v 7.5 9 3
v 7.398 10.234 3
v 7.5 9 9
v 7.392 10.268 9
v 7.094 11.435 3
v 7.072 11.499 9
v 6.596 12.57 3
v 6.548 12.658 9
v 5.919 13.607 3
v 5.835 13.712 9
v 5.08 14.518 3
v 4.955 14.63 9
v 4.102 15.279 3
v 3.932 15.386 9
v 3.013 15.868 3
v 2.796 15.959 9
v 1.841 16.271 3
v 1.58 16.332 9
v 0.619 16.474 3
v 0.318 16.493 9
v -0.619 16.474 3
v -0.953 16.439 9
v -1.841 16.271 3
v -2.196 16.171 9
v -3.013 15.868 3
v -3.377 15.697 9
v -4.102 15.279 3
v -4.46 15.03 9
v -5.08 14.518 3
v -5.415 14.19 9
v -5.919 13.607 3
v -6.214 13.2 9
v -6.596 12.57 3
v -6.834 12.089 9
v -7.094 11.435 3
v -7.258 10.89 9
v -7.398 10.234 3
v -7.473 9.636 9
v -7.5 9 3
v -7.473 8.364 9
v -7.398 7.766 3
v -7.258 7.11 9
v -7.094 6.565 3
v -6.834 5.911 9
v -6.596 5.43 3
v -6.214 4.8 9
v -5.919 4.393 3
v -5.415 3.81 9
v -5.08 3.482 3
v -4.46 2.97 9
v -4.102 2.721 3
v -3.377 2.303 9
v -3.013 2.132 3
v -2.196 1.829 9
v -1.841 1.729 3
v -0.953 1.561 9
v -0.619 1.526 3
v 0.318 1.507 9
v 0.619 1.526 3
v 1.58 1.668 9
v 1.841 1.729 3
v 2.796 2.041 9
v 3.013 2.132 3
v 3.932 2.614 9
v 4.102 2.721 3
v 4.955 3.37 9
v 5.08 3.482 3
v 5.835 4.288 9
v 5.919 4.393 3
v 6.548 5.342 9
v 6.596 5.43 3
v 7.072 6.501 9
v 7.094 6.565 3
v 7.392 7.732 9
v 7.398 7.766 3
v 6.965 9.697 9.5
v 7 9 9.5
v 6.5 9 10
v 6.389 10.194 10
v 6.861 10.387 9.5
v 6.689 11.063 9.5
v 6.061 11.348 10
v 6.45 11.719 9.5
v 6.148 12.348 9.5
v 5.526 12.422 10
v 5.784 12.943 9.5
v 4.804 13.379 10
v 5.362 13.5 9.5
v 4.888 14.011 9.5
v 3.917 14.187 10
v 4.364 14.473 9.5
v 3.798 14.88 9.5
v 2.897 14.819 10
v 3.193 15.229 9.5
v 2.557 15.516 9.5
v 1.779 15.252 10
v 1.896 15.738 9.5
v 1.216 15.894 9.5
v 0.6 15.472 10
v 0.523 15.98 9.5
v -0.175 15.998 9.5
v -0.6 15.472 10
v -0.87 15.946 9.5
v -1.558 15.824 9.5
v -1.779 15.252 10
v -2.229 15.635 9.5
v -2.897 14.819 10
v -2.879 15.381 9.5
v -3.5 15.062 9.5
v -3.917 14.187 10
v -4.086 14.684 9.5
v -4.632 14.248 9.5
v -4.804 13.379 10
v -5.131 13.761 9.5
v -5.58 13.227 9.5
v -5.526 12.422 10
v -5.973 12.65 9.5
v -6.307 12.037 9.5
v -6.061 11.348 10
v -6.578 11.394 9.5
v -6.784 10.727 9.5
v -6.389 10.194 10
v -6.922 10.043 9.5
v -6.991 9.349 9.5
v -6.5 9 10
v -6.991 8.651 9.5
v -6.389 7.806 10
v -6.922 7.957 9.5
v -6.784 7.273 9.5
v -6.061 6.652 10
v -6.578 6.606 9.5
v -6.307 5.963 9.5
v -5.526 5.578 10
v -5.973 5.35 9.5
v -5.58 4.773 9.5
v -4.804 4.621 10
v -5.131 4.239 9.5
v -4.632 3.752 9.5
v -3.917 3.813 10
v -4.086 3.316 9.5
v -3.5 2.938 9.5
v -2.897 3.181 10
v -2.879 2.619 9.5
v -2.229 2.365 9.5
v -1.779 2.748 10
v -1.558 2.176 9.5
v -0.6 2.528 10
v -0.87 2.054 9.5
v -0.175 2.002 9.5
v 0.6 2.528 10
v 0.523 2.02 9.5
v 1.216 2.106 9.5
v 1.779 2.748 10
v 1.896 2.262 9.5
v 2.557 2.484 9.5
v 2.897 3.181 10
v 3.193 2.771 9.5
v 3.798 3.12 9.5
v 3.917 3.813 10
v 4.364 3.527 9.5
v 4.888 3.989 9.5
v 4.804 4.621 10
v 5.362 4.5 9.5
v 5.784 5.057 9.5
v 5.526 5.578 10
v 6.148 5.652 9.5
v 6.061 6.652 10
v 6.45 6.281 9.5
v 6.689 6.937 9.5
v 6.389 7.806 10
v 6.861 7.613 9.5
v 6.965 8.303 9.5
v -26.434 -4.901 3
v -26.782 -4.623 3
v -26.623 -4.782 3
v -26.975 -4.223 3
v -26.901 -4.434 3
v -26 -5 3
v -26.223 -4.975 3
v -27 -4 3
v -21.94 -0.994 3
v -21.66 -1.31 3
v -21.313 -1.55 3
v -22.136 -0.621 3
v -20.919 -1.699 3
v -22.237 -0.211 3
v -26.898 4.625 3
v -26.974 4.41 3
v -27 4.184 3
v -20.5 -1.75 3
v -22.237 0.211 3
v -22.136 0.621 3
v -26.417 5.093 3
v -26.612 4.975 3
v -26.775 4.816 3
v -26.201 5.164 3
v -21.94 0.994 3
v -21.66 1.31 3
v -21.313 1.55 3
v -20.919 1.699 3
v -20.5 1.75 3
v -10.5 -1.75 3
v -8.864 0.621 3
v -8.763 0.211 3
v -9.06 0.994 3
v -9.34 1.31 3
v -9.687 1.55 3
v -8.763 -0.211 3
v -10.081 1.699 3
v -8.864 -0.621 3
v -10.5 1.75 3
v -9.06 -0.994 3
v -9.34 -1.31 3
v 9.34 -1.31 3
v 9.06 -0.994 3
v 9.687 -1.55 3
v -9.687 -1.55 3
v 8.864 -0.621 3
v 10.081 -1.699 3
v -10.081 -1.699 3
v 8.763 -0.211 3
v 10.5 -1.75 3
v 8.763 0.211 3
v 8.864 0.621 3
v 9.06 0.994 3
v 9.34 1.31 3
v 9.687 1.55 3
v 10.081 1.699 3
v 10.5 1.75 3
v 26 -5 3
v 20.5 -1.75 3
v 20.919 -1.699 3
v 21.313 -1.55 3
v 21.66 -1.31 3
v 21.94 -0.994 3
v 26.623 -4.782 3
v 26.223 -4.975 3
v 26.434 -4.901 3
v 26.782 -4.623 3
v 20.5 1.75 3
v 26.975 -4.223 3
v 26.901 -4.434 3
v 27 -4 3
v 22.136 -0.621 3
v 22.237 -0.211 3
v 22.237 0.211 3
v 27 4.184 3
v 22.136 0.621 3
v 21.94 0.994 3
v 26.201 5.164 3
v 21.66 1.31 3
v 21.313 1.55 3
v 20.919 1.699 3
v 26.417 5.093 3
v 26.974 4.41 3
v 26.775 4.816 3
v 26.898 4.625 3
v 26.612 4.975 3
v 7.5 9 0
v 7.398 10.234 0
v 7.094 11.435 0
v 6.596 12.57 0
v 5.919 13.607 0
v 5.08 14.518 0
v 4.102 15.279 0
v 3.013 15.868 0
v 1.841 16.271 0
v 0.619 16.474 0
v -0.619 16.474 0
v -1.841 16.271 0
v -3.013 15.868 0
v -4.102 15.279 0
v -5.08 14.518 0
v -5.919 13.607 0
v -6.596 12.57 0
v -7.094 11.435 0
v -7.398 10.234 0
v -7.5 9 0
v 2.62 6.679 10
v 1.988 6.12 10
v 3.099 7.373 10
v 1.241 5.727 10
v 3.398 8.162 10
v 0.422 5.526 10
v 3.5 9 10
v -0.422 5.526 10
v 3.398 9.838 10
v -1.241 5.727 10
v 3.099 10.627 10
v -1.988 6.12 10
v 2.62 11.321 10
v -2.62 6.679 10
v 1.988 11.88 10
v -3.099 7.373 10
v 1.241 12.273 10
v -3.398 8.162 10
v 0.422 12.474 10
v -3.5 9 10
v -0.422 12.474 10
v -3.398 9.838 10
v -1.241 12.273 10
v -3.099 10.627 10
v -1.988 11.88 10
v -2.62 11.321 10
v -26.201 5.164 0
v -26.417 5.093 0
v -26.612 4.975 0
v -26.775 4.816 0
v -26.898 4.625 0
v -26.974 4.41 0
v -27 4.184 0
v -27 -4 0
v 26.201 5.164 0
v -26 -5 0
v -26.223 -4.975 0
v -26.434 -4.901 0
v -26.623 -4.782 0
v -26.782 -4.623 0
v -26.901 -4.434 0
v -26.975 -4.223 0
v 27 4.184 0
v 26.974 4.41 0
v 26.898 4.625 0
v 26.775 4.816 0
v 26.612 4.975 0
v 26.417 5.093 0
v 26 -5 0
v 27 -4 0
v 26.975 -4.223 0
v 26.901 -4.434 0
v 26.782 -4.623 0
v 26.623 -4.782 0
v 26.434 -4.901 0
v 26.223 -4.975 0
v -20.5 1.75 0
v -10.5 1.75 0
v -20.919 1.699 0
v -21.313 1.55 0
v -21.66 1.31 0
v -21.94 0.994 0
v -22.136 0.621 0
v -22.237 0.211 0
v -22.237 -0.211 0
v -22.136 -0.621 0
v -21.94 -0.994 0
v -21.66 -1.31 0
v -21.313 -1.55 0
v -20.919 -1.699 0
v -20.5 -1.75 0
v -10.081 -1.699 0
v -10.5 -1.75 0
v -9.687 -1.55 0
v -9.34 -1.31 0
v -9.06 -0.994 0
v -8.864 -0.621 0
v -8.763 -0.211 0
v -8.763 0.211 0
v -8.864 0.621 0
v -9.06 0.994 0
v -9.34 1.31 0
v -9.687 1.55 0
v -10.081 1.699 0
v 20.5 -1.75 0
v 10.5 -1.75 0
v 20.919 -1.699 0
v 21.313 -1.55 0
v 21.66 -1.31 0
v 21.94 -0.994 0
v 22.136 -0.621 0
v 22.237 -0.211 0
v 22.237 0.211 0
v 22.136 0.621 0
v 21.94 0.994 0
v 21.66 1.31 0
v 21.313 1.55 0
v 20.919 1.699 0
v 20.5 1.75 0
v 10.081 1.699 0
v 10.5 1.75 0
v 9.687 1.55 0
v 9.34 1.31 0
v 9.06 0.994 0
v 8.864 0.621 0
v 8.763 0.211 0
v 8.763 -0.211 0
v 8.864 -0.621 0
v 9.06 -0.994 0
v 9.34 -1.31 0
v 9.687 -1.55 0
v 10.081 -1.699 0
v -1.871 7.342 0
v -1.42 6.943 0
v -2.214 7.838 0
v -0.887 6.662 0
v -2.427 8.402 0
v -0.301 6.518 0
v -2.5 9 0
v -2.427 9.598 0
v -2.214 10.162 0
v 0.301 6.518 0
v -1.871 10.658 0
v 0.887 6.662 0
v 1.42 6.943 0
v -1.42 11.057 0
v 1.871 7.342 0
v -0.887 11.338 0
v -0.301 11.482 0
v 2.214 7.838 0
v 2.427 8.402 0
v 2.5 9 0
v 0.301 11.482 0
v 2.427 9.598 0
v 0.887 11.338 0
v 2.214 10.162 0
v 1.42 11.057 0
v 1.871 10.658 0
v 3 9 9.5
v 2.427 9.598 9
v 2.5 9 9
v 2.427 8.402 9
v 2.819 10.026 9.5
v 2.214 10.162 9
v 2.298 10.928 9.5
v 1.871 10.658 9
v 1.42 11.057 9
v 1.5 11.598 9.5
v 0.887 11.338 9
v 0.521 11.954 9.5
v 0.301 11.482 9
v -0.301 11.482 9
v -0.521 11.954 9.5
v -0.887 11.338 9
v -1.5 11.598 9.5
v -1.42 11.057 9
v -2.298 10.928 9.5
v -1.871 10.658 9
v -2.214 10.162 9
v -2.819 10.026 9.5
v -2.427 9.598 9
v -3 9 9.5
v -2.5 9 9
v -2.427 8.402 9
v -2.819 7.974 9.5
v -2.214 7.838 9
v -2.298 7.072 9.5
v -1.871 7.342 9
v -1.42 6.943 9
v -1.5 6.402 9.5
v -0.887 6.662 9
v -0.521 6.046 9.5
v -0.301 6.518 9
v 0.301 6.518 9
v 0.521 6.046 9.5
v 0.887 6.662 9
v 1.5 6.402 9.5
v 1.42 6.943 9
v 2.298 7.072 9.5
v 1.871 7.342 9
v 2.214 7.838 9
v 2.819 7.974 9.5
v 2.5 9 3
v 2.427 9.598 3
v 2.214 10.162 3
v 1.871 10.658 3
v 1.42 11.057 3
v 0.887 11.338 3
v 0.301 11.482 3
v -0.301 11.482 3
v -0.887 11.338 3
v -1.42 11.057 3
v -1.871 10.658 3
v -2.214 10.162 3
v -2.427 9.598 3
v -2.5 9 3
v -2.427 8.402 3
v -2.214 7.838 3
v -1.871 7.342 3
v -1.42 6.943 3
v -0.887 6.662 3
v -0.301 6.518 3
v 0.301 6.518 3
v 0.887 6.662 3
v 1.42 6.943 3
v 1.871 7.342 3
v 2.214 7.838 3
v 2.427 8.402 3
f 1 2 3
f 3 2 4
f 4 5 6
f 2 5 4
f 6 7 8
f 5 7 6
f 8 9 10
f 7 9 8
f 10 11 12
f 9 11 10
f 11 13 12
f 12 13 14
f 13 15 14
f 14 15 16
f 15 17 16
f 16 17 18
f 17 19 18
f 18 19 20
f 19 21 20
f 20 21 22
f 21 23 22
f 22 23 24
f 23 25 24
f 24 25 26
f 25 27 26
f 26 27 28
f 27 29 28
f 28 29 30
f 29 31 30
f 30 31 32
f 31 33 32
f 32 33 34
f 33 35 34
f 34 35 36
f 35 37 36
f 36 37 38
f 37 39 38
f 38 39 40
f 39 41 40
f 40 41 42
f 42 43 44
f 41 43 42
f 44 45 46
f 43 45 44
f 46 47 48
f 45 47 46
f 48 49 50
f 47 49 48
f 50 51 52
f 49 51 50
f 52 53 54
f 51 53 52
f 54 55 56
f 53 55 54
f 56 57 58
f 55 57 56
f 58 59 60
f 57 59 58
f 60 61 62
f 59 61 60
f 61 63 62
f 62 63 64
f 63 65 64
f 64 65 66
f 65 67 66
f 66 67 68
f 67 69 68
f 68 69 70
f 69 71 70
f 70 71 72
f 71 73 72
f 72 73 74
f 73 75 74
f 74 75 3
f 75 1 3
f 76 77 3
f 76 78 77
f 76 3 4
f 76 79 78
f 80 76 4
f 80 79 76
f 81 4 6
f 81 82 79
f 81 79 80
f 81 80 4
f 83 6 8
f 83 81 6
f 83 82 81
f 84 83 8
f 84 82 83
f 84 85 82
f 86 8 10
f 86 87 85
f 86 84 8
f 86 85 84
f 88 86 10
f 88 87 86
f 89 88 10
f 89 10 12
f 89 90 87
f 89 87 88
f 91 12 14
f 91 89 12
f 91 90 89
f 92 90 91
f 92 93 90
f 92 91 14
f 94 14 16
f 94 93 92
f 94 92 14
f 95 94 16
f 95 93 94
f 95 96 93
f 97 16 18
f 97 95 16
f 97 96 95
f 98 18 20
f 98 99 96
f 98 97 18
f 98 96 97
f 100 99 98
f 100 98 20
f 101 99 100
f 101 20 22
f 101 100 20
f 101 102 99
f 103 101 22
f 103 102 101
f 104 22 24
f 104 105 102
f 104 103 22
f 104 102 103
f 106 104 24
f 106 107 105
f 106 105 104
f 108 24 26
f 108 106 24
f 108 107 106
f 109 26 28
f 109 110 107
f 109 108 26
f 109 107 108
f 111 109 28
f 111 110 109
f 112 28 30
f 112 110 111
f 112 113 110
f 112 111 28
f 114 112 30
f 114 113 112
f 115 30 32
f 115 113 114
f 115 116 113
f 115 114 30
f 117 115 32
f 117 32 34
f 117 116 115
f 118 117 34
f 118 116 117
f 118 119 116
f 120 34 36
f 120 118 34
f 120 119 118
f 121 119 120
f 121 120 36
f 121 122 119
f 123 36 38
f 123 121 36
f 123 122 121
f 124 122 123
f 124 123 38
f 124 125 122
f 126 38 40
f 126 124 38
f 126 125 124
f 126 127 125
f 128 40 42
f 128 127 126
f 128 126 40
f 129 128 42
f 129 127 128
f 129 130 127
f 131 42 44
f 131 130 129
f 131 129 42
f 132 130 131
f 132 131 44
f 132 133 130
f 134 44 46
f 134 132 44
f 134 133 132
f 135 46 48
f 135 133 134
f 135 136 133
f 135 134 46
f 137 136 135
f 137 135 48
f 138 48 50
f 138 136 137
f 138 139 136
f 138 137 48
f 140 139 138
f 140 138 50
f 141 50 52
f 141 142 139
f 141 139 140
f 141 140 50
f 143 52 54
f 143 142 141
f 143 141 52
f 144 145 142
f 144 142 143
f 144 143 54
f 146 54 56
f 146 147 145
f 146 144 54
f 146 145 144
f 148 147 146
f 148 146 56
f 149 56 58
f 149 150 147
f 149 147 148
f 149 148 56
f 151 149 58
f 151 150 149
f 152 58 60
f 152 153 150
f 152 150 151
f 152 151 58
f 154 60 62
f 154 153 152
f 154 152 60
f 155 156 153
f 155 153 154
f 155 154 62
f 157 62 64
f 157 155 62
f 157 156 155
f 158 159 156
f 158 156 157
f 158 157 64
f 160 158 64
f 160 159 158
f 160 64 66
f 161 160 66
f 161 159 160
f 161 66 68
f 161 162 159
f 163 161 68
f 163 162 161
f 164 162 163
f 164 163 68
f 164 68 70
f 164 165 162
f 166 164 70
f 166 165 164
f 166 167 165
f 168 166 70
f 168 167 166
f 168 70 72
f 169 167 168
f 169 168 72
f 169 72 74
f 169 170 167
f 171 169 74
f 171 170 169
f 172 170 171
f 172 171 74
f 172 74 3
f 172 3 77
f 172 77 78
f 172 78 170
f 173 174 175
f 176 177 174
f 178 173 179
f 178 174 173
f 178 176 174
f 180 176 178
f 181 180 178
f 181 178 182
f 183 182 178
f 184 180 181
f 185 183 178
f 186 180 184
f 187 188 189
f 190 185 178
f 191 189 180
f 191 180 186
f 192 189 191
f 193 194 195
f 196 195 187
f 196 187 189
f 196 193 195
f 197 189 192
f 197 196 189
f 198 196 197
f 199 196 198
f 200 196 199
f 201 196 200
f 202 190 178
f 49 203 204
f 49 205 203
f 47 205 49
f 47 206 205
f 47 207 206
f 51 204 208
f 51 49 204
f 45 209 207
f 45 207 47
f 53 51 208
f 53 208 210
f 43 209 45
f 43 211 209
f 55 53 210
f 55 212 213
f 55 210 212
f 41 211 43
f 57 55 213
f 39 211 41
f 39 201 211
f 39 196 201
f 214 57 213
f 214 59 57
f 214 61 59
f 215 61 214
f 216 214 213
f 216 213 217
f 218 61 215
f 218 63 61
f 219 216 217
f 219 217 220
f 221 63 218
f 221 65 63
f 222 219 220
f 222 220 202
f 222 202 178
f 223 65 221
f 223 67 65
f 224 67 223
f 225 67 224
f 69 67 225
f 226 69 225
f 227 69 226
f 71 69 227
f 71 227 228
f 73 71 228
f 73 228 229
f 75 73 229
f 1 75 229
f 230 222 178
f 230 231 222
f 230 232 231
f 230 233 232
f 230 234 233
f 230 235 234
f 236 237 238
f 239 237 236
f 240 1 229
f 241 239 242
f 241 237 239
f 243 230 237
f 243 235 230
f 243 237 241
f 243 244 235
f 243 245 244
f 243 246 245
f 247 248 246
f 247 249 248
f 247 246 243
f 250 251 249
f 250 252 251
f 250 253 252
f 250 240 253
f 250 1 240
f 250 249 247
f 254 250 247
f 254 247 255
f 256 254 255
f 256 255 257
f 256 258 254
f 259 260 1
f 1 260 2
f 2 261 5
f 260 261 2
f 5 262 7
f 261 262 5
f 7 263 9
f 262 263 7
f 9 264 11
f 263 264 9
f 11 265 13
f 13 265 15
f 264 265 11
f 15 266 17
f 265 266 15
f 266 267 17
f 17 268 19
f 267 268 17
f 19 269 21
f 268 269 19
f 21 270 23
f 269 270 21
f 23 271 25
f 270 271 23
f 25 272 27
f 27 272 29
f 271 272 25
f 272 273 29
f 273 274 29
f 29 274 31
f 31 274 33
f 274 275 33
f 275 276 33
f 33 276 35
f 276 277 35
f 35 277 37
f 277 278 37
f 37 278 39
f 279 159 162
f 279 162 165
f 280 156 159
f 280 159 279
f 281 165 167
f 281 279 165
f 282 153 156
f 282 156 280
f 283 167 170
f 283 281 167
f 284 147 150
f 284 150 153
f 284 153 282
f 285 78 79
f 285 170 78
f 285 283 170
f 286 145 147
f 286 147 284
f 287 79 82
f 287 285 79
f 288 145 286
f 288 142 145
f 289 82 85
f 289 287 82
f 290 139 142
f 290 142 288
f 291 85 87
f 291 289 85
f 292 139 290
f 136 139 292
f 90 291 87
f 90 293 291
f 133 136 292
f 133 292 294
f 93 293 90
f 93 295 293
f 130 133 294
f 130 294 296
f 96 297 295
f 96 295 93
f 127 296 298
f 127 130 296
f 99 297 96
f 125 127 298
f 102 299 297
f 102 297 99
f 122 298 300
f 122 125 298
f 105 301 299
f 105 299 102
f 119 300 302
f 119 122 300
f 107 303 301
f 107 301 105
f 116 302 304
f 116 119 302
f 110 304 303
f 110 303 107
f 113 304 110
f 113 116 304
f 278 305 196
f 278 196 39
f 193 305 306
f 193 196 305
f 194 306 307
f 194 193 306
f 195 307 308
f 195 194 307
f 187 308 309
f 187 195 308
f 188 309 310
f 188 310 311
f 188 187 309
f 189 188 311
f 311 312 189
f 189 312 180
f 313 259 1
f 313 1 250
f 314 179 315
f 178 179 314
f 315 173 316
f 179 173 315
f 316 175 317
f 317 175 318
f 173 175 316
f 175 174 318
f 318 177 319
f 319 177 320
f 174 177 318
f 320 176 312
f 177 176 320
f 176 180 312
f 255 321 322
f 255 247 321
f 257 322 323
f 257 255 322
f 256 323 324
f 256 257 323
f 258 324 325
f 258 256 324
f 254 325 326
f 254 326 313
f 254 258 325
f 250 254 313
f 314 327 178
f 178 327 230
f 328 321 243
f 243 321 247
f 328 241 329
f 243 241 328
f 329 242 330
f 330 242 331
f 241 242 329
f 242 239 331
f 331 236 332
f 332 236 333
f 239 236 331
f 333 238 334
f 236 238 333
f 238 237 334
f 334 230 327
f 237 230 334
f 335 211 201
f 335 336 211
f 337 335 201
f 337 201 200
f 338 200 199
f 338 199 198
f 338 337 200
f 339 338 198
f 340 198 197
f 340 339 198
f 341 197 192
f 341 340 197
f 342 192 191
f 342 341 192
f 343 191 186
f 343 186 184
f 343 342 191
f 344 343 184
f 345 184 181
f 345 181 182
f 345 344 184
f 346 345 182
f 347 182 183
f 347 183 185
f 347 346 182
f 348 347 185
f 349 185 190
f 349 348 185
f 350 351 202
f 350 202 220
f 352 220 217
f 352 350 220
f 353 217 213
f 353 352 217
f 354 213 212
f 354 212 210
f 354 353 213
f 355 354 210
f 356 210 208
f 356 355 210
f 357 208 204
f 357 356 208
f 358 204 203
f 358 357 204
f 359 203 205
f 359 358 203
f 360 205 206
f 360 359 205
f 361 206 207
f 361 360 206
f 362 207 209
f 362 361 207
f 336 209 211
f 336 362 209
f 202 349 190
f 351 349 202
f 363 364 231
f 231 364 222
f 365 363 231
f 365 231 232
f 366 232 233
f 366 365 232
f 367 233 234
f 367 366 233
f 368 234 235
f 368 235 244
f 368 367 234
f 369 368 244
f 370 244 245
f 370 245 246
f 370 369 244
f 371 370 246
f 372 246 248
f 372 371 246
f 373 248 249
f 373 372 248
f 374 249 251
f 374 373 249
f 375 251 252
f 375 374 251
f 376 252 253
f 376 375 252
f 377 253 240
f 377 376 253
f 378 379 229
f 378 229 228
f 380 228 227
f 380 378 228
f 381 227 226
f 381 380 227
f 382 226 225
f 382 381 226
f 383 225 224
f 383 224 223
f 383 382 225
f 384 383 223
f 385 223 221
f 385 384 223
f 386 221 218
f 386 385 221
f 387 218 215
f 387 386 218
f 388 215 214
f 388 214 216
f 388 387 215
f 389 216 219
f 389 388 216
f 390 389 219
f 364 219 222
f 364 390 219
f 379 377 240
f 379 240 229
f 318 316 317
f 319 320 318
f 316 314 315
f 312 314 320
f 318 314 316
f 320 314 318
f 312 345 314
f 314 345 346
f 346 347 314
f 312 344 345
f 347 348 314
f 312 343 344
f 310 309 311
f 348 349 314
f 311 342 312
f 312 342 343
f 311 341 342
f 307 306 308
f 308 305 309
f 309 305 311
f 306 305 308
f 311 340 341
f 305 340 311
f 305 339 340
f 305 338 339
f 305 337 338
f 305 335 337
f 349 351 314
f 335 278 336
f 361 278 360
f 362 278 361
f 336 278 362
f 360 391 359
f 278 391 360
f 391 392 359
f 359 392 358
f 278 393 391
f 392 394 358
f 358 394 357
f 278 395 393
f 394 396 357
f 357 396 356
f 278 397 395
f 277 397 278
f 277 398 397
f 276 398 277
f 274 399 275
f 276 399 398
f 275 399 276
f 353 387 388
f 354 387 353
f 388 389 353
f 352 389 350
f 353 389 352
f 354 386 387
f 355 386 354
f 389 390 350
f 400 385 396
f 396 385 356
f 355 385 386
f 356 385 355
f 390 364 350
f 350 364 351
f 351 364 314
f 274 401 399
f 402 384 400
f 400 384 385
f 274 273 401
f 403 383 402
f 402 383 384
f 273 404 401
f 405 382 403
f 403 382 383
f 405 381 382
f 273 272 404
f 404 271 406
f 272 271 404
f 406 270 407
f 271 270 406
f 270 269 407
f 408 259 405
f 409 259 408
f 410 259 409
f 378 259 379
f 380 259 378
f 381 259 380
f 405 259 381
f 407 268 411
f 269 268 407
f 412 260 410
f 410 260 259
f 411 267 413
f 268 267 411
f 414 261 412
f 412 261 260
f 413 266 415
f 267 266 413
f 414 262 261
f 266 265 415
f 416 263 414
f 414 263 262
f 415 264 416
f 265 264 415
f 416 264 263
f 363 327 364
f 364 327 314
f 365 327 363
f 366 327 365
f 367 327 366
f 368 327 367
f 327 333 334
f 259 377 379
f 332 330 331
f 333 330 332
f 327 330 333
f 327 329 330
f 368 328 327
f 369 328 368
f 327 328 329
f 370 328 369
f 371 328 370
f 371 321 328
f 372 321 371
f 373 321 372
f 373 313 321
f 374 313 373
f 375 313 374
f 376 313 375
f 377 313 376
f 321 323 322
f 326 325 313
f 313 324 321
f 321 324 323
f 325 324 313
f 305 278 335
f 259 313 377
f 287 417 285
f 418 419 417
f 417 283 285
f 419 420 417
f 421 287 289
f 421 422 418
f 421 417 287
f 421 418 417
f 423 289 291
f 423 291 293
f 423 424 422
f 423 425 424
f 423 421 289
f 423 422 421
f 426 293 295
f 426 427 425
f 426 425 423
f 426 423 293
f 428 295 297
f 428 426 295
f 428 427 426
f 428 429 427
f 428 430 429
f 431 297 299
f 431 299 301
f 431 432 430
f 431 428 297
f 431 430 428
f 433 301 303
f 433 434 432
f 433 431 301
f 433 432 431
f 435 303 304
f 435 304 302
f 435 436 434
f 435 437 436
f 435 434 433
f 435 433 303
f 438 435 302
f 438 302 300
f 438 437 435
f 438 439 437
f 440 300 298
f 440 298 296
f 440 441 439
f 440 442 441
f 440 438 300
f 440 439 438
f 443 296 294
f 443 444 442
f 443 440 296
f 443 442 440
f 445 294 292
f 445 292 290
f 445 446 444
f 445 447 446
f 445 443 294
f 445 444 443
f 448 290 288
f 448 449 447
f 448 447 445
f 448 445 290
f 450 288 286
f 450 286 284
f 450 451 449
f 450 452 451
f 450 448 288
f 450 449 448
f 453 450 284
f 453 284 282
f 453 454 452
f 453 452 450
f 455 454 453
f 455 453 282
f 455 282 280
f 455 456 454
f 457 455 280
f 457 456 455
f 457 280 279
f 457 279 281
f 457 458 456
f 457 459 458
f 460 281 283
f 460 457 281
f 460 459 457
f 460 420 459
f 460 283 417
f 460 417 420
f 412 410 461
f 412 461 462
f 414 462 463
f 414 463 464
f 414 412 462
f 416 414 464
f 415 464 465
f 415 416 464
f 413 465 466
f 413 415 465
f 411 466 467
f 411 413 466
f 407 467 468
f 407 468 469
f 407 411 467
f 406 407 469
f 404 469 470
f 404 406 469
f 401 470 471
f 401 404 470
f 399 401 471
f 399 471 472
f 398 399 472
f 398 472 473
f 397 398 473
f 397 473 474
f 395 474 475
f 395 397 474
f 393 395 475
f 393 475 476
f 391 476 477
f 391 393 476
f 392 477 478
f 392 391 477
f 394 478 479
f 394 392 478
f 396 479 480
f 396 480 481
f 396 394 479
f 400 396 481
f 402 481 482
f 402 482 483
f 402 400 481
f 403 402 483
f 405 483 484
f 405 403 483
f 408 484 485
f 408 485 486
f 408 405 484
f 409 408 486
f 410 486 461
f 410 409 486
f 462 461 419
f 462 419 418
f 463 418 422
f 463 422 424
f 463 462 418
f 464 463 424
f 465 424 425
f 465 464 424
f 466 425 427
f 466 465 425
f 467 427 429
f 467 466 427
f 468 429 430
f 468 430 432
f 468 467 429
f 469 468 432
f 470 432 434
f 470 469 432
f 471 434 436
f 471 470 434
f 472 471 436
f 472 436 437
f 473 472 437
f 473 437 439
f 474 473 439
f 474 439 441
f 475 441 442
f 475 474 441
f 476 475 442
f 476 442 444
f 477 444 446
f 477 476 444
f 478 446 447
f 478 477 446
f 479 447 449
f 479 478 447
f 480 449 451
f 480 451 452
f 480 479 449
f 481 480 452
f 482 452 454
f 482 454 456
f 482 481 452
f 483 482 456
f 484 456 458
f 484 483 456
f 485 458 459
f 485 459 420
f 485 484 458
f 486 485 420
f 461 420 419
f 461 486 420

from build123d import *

# Parameters (mm, degrees)
SKETCH_R        = 2.5
PAD_DEPTH       = 3
SKETCH001_R     = 7.5
SKETCH001_R_2   = 2.5
PAD001_DEPTH    = 7
CHAMFER_SIZE    = 1
FILLET_R        = 1
FILLET001_R     = 1
FILLET002_R     = 1
FILLET003_R     = 1
CHAMFER001_SIZE = 1


with BuildPart() as part:
    # Sketch → Pad (new body)
    with BuildSketch(Plane.XY):
        with BuildLine():
            Line((-27, -5), (27, -5))
            Line((27, -5), (27, 5))
            Line((7.5, 9), (27, 5))
            ThreePointArc((7.5, 9), (0, 16.5), (-7.5, 9))
            Line((-27, 5), (-7.5, 9))
            Line((-27, 5), (-27, -5))
        make_face()
        with Locations((0, 9)):
            Circle(SKETCH_R, mode=Mode.SUBTRACT)
        with BuildLine():
            ThreePointArc((-20.5, 1.75), (-22.25, 0), (-20.5, -1.75))
            Line((-20.5, -1.75), (-10.5, -1.75))
            ThreePointArc((-10.5, -1.75), (-8.75, 0), (-10.5, 1.75))
            Line((-20.5, 1.75), (-10.5, 1.75))
        make_face(mode=Mode.SUBTRACT)
        with BuildLine():
            ThreePointArc((20.5, -1.75), (22.25, 0), (20.5, 1.75))
            Line((20.5, 1.75), (10.5, 1.75))
            ThreePointArc((10.5, 1.75), (8.75, 0), (10.5, -1.75))
            Line((20.5, -1.75), (10.5, -1.75))
        make_face(mode=Mode.SUBTRACT)
    extrude(amount=PAD_DEPTH)

    # Sketch001 (on Face17 of Pad) → Pad001 (join)
    with BuildSketch(Plane.XY.offset(3)):
        with Locations((0, 9)):
            Circle(SKETCH001_R)
        with Locations((0, 9)):
            Circle(SKETCH001_R_2, mode=Mode.SUBTRACT)
    extrude(amount=PAD001_DEPTH)

    # Chamfer
    chamfer_edges = [part.edges().sort_by_distance(p)[0] for p in [
        (-2.5, 9, 10),
    ]]
    chamfer(chamfer_edges, length=CHAMFER_SIZE)

    # Fillet
    fillet_edges = [part.edges().sort_by_distance(p)[0] for p in [
        (27, -5, 1.5),
    ]]
    fillet(fillet_edges, radius=FILLET_R)

    # Fillet001
    fillet001_edges = [part.edges().sort_by_distance(p)[0] for p in [
        (-27, -5, 1.5),
    ]]
    fillet(fillet001_edges, radius=FILLET001_R)

    # Fillet002
    fillet002_edges = [part.edges().sort_by_distance(p)[0] for p in [
        (27, 5, 1.5),
    ]]
    fillet(fillet002_edges, radius=FILLET002_R)

    # Fillet003
    fillet003_edges = [part.edges().sort_by_distance(p)[0] for p in [
        (-27, 5, 1.5),
    ]]
    fillet(fillet003_edges, radius=FILLET003_R)

    # Chamfer001
    chamfer001_edges = [part.edges().sort_by_distance(p)[0] for p in [
        (-7.5, 9, 10),
    ]]
    chamfer(chamfer001_edges, length=CHAMFER001_SIZE)


solid = part.part
